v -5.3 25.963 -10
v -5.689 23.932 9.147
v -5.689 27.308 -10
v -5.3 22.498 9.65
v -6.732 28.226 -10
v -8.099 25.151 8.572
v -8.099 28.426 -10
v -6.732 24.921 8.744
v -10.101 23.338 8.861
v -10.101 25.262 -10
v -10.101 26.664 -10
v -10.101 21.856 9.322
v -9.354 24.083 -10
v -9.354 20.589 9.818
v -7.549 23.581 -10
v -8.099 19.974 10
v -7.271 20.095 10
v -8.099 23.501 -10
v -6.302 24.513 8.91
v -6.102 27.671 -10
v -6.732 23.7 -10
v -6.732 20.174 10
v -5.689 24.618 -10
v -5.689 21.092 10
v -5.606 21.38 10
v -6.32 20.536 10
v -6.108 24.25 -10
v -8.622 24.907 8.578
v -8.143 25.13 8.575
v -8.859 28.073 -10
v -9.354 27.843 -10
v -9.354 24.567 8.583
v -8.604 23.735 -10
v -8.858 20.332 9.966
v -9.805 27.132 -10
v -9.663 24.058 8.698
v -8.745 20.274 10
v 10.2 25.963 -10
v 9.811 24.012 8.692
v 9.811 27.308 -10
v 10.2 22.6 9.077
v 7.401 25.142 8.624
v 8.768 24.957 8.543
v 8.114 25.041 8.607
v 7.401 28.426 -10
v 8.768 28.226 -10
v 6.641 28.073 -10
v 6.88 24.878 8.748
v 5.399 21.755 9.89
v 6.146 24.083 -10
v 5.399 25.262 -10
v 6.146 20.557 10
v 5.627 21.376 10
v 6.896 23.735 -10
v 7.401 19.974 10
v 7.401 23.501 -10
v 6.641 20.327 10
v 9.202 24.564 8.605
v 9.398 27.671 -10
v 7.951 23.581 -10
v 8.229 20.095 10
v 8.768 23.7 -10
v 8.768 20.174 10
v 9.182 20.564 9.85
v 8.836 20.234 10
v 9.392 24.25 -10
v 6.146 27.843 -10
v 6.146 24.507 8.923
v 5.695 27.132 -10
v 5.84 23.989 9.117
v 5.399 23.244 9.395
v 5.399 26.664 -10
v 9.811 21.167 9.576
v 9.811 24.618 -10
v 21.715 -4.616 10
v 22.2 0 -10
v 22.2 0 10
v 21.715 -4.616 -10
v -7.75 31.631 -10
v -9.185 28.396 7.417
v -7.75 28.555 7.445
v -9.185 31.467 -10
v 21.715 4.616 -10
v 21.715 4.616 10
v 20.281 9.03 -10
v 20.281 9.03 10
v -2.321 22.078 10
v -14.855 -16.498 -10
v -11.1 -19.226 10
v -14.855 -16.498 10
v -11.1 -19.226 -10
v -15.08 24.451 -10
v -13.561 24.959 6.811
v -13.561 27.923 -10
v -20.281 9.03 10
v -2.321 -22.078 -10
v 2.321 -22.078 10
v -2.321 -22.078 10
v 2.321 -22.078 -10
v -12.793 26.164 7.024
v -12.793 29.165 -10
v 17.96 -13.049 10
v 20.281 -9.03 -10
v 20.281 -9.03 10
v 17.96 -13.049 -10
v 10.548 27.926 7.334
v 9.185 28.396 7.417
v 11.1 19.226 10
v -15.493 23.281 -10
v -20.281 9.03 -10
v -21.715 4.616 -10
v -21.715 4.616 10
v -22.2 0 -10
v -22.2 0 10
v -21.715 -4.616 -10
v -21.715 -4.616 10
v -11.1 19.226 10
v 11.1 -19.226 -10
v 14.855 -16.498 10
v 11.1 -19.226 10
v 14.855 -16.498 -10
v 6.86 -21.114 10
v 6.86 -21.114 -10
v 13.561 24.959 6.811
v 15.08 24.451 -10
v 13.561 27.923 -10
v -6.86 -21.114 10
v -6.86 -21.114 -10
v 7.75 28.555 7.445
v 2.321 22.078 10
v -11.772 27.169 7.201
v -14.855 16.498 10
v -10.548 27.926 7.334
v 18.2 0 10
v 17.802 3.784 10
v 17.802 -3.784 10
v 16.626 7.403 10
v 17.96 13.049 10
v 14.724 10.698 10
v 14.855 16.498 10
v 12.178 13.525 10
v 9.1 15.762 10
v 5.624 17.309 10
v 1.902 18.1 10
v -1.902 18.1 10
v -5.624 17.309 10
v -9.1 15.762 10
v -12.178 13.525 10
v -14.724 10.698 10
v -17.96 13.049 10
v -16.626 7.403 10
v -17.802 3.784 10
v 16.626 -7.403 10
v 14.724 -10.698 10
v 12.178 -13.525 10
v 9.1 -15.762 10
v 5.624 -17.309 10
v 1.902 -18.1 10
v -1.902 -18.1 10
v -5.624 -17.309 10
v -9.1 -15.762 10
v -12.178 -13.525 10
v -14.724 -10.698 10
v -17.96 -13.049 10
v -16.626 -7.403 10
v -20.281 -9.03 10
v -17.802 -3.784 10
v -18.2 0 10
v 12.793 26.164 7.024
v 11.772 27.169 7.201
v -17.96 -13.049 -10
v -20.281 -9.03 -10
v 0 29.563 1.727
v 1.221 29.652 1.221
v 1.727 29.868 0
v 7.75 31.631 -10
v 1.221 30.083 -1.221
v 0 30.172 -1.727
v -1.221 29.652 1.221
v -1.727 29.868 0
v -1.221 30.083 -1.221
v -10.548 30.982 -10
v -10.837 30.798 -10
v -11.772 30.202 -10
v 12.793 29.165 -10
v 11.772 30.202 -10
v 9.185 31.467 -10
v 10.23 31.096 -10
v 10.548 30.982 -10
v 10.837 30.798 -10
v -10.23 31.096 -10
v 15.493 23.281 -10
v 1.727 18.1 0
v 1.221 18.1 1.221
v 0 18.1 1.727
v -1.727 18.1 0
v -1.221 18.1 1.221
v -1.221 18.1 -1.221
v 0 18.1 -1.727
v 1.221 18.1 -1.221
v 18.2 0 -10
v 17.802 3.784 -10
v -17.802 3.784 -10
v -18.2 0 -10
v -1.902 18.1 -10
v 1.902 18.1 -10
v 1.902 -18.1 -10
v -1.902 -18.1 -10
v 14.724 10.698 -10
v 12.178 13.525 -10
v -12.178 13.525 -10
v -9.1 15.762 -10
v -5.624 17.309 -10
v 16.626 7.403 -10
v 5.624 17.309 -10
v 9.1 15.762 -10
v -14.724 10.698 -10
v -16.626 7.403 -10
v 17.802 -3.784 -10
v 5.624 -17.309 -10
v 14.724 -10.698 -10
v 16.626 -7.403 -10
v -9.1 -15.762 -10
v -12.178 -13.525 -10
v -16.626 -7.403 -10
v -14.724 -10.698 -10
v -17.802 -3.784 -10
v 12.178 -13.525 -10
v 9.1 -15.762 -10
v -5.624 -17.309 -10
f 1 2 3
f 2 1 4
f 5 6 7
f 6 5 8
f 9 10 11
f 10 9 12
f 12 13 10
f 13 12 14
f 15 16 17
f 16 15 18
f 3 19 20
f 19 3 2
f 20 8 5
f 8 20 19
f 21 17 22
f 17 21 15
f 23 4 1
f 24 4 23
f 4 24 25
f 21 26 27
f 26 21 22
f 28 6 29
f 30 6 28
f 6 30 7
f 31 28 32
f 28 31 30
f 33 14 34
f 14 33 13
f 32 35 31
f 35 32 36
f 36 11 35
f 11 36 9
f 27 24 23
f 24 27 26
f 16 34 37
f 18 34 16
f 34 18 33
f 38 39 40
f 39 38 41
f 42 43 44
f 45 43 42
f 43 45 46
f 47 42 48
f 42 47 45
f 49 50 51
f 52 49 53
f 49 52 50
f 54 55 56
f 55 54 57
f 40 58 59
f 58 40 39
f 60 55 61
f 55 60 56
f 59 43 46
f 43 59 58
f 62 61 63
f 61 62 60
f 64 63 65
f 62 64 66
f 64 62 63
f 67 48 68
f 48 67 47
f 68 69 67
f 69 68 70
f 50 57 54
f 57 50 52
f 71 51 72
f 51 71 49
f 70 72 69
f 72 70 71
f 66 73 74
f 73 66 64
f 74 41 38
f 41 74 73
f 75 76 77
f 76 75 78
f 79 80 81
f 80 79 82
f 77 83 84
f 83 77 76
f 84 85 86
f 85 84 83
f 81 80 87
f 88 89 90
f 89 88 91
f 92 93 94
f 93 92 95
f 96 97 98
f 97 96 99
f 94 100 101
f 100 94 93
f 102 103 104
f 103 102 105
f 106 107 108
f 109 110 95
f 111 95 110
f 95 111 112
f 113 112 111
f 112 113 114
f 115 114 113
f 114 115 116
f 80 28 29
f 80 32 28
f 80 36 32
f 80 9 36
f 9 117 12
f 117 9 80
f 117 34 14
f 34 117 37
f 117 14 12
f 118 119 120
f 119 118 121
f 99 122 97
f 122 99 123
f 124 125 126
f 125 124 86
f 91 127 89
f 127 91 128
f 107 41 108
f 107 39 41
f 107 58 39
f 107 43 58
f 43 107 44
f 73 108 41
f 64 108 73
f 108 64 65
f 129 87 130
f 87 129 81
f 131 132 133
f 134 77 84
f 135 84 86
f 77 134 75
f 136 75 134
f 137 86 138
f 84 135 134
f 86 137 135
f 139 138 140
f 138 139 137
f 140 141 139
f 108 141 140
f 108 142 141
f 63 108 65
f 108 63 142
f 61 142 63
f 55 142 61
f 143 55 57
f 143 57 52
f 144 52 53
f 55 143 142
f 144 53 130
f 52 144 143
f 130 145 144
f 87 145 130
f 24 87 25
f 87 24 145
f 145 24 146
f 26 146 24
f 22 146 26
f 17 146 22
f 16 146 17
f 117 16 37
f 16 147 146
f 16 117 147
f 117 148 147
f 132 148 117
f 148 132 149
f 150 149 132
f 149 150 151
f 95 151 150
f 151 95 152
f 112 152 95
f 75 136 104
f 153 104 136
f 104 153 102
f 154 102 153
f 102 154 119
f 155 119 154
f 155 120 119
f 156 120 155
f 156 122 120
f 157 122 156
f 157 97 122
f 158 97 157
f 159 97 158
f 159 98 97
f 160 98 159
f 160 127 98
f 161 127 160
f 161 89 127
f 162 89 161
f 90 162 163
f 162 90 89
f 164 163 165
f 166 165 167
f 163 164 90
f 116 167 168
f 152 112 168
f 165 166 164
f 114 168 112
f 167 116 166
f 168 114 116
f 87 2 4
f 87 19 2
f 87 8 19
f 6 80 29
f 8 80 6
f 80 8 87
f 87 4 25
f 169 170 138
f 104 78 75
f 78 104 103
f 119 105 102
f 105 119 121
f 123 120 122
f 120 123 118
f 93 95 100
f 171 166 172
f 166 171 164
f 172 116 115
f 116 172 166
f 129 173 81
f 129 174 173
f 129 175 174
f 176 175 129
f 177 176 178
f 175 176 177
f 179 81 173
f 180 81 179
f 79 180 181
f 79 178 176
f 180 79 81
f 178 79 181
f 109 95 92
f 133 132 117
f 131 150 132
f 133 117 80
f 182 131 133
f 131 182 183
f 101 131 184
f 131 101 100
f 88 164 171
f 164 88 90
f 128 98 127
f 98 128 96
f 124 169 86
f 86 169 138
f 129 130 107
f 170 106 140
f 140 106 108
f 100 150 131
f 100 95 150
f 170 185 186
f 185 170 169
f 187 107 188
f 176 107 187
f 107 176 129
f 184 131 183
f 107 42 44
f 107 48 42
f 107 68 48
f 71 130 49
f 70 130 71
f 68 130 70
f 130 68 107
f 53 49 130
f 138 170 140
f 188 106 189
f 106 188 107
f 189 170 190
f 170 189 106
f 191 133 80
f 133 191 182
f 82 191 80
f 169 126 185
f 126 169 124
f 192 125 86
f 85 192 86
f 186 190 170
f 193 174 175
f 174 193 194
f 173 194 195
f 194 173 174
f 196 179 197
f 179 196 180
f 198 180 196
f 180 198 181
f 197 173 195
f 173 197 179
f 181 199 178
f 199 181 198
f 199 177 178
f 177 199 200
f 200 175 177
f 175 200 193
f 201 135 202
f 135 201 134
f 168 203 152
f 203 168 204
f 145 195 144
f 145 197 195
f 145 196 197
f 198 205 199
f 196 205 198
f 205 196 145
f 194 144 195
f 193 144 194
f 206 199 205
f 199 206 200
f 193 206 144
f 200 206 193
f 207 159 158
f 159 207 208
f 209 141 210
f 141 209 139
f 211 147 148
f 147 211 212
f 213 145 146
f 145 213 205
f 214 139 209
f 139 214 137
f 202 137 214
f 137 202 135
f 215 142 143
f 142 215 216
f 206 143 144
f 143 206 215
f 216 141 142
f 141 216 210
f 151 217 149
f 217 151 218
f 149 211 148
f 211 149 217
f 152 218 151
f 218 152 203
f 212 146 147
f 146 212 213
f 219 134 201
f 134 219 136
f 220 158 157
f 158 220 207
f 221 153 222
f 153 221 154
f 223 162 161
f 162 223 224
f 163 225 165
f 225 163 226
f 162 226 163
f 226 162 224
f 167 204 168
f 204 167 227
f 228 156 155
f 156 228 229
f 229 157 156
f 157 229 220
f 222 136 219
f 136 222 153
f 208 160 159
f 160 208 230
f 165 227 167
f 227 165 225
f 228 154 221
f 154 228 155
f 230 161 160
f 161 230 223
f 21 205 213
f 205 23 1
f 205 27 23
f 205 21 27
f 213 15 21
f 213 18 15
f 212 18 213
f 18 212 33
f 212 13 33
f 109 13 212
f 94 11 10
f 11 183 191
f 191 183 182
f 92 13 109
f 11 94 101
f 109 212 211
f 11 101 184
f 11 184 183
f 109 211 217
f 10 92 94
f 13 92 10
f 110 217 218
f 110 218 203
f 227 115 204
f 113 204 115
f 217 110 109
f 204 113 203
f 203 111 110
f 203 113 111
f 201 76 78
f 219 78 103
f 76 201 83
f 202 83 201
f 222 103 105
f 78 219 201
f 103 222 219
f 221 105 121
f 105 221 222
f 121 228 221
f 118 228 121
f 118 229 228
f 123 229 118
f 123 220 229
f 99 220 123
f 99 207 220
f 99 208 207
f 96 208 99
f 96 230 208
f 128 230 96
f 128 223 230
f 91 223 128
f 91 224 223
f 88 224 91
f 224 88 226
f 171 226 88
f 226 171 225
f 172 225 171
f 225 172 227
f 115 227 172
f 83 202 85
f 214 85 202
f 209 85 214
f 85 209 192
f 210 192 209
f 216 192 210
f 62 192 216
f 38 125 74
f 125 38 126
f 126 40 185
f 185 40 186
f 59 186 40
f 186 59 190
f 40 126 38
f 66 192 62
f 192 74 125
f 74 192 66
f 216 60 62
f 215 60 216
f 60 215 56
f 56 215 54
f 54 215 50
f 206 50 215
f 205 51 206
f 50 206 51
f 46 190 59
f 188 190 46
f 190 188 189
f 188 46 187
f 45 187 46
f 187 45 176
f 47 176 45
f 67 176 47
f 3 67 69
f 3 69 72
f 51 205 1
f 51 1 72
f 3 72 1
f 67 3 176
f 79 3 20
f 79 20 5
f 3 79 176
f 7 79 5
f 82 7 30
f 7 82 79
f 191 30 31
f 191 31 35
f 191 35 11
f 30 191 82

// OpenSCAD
spacerD = 36.4;
protrudeLen = 6;
thick = 4;
height = 20;
rodD = 4.9;
rodSpacing = 10.6 + rodD;

module _ry() {
    rotate([90,0]) children();
}
module _rx() {
    rotate([0,90]) children();
}

$fs=1.5;
intersection() {
    difference() {
        hull() {
            cylinder(d=spacerD + 2*thick, h=height, center=true);
            for (xoff=[-rodSpacing/2:rodSpacing:rodSpacing/2]) {
                translate([xoff, spacerD/2 + protrudeLen, -5]) rotate([10,0,0]) cylinder(d=rodD + 2*thick, h=height+3, center=true);
            }
        }
        // set screw
        translate([0, spacerD/2])
        #_ry() cylinder(d= 0.136 * 25.4, h=spacerD, center=true);
        cylinder(d=spacerD, h=100, center=true);
        for (xoff=[-rodSpacing/2:rodSpacing:rodSpacing/2]) {
            translate([xoff, spacerD/2 + protrudeLen, 0]) rotate([10,0,0]) cylinder(d=rodD, h=100, center=true);
        }

    }
    cylinder(r=100, h=height, center=true);
}
